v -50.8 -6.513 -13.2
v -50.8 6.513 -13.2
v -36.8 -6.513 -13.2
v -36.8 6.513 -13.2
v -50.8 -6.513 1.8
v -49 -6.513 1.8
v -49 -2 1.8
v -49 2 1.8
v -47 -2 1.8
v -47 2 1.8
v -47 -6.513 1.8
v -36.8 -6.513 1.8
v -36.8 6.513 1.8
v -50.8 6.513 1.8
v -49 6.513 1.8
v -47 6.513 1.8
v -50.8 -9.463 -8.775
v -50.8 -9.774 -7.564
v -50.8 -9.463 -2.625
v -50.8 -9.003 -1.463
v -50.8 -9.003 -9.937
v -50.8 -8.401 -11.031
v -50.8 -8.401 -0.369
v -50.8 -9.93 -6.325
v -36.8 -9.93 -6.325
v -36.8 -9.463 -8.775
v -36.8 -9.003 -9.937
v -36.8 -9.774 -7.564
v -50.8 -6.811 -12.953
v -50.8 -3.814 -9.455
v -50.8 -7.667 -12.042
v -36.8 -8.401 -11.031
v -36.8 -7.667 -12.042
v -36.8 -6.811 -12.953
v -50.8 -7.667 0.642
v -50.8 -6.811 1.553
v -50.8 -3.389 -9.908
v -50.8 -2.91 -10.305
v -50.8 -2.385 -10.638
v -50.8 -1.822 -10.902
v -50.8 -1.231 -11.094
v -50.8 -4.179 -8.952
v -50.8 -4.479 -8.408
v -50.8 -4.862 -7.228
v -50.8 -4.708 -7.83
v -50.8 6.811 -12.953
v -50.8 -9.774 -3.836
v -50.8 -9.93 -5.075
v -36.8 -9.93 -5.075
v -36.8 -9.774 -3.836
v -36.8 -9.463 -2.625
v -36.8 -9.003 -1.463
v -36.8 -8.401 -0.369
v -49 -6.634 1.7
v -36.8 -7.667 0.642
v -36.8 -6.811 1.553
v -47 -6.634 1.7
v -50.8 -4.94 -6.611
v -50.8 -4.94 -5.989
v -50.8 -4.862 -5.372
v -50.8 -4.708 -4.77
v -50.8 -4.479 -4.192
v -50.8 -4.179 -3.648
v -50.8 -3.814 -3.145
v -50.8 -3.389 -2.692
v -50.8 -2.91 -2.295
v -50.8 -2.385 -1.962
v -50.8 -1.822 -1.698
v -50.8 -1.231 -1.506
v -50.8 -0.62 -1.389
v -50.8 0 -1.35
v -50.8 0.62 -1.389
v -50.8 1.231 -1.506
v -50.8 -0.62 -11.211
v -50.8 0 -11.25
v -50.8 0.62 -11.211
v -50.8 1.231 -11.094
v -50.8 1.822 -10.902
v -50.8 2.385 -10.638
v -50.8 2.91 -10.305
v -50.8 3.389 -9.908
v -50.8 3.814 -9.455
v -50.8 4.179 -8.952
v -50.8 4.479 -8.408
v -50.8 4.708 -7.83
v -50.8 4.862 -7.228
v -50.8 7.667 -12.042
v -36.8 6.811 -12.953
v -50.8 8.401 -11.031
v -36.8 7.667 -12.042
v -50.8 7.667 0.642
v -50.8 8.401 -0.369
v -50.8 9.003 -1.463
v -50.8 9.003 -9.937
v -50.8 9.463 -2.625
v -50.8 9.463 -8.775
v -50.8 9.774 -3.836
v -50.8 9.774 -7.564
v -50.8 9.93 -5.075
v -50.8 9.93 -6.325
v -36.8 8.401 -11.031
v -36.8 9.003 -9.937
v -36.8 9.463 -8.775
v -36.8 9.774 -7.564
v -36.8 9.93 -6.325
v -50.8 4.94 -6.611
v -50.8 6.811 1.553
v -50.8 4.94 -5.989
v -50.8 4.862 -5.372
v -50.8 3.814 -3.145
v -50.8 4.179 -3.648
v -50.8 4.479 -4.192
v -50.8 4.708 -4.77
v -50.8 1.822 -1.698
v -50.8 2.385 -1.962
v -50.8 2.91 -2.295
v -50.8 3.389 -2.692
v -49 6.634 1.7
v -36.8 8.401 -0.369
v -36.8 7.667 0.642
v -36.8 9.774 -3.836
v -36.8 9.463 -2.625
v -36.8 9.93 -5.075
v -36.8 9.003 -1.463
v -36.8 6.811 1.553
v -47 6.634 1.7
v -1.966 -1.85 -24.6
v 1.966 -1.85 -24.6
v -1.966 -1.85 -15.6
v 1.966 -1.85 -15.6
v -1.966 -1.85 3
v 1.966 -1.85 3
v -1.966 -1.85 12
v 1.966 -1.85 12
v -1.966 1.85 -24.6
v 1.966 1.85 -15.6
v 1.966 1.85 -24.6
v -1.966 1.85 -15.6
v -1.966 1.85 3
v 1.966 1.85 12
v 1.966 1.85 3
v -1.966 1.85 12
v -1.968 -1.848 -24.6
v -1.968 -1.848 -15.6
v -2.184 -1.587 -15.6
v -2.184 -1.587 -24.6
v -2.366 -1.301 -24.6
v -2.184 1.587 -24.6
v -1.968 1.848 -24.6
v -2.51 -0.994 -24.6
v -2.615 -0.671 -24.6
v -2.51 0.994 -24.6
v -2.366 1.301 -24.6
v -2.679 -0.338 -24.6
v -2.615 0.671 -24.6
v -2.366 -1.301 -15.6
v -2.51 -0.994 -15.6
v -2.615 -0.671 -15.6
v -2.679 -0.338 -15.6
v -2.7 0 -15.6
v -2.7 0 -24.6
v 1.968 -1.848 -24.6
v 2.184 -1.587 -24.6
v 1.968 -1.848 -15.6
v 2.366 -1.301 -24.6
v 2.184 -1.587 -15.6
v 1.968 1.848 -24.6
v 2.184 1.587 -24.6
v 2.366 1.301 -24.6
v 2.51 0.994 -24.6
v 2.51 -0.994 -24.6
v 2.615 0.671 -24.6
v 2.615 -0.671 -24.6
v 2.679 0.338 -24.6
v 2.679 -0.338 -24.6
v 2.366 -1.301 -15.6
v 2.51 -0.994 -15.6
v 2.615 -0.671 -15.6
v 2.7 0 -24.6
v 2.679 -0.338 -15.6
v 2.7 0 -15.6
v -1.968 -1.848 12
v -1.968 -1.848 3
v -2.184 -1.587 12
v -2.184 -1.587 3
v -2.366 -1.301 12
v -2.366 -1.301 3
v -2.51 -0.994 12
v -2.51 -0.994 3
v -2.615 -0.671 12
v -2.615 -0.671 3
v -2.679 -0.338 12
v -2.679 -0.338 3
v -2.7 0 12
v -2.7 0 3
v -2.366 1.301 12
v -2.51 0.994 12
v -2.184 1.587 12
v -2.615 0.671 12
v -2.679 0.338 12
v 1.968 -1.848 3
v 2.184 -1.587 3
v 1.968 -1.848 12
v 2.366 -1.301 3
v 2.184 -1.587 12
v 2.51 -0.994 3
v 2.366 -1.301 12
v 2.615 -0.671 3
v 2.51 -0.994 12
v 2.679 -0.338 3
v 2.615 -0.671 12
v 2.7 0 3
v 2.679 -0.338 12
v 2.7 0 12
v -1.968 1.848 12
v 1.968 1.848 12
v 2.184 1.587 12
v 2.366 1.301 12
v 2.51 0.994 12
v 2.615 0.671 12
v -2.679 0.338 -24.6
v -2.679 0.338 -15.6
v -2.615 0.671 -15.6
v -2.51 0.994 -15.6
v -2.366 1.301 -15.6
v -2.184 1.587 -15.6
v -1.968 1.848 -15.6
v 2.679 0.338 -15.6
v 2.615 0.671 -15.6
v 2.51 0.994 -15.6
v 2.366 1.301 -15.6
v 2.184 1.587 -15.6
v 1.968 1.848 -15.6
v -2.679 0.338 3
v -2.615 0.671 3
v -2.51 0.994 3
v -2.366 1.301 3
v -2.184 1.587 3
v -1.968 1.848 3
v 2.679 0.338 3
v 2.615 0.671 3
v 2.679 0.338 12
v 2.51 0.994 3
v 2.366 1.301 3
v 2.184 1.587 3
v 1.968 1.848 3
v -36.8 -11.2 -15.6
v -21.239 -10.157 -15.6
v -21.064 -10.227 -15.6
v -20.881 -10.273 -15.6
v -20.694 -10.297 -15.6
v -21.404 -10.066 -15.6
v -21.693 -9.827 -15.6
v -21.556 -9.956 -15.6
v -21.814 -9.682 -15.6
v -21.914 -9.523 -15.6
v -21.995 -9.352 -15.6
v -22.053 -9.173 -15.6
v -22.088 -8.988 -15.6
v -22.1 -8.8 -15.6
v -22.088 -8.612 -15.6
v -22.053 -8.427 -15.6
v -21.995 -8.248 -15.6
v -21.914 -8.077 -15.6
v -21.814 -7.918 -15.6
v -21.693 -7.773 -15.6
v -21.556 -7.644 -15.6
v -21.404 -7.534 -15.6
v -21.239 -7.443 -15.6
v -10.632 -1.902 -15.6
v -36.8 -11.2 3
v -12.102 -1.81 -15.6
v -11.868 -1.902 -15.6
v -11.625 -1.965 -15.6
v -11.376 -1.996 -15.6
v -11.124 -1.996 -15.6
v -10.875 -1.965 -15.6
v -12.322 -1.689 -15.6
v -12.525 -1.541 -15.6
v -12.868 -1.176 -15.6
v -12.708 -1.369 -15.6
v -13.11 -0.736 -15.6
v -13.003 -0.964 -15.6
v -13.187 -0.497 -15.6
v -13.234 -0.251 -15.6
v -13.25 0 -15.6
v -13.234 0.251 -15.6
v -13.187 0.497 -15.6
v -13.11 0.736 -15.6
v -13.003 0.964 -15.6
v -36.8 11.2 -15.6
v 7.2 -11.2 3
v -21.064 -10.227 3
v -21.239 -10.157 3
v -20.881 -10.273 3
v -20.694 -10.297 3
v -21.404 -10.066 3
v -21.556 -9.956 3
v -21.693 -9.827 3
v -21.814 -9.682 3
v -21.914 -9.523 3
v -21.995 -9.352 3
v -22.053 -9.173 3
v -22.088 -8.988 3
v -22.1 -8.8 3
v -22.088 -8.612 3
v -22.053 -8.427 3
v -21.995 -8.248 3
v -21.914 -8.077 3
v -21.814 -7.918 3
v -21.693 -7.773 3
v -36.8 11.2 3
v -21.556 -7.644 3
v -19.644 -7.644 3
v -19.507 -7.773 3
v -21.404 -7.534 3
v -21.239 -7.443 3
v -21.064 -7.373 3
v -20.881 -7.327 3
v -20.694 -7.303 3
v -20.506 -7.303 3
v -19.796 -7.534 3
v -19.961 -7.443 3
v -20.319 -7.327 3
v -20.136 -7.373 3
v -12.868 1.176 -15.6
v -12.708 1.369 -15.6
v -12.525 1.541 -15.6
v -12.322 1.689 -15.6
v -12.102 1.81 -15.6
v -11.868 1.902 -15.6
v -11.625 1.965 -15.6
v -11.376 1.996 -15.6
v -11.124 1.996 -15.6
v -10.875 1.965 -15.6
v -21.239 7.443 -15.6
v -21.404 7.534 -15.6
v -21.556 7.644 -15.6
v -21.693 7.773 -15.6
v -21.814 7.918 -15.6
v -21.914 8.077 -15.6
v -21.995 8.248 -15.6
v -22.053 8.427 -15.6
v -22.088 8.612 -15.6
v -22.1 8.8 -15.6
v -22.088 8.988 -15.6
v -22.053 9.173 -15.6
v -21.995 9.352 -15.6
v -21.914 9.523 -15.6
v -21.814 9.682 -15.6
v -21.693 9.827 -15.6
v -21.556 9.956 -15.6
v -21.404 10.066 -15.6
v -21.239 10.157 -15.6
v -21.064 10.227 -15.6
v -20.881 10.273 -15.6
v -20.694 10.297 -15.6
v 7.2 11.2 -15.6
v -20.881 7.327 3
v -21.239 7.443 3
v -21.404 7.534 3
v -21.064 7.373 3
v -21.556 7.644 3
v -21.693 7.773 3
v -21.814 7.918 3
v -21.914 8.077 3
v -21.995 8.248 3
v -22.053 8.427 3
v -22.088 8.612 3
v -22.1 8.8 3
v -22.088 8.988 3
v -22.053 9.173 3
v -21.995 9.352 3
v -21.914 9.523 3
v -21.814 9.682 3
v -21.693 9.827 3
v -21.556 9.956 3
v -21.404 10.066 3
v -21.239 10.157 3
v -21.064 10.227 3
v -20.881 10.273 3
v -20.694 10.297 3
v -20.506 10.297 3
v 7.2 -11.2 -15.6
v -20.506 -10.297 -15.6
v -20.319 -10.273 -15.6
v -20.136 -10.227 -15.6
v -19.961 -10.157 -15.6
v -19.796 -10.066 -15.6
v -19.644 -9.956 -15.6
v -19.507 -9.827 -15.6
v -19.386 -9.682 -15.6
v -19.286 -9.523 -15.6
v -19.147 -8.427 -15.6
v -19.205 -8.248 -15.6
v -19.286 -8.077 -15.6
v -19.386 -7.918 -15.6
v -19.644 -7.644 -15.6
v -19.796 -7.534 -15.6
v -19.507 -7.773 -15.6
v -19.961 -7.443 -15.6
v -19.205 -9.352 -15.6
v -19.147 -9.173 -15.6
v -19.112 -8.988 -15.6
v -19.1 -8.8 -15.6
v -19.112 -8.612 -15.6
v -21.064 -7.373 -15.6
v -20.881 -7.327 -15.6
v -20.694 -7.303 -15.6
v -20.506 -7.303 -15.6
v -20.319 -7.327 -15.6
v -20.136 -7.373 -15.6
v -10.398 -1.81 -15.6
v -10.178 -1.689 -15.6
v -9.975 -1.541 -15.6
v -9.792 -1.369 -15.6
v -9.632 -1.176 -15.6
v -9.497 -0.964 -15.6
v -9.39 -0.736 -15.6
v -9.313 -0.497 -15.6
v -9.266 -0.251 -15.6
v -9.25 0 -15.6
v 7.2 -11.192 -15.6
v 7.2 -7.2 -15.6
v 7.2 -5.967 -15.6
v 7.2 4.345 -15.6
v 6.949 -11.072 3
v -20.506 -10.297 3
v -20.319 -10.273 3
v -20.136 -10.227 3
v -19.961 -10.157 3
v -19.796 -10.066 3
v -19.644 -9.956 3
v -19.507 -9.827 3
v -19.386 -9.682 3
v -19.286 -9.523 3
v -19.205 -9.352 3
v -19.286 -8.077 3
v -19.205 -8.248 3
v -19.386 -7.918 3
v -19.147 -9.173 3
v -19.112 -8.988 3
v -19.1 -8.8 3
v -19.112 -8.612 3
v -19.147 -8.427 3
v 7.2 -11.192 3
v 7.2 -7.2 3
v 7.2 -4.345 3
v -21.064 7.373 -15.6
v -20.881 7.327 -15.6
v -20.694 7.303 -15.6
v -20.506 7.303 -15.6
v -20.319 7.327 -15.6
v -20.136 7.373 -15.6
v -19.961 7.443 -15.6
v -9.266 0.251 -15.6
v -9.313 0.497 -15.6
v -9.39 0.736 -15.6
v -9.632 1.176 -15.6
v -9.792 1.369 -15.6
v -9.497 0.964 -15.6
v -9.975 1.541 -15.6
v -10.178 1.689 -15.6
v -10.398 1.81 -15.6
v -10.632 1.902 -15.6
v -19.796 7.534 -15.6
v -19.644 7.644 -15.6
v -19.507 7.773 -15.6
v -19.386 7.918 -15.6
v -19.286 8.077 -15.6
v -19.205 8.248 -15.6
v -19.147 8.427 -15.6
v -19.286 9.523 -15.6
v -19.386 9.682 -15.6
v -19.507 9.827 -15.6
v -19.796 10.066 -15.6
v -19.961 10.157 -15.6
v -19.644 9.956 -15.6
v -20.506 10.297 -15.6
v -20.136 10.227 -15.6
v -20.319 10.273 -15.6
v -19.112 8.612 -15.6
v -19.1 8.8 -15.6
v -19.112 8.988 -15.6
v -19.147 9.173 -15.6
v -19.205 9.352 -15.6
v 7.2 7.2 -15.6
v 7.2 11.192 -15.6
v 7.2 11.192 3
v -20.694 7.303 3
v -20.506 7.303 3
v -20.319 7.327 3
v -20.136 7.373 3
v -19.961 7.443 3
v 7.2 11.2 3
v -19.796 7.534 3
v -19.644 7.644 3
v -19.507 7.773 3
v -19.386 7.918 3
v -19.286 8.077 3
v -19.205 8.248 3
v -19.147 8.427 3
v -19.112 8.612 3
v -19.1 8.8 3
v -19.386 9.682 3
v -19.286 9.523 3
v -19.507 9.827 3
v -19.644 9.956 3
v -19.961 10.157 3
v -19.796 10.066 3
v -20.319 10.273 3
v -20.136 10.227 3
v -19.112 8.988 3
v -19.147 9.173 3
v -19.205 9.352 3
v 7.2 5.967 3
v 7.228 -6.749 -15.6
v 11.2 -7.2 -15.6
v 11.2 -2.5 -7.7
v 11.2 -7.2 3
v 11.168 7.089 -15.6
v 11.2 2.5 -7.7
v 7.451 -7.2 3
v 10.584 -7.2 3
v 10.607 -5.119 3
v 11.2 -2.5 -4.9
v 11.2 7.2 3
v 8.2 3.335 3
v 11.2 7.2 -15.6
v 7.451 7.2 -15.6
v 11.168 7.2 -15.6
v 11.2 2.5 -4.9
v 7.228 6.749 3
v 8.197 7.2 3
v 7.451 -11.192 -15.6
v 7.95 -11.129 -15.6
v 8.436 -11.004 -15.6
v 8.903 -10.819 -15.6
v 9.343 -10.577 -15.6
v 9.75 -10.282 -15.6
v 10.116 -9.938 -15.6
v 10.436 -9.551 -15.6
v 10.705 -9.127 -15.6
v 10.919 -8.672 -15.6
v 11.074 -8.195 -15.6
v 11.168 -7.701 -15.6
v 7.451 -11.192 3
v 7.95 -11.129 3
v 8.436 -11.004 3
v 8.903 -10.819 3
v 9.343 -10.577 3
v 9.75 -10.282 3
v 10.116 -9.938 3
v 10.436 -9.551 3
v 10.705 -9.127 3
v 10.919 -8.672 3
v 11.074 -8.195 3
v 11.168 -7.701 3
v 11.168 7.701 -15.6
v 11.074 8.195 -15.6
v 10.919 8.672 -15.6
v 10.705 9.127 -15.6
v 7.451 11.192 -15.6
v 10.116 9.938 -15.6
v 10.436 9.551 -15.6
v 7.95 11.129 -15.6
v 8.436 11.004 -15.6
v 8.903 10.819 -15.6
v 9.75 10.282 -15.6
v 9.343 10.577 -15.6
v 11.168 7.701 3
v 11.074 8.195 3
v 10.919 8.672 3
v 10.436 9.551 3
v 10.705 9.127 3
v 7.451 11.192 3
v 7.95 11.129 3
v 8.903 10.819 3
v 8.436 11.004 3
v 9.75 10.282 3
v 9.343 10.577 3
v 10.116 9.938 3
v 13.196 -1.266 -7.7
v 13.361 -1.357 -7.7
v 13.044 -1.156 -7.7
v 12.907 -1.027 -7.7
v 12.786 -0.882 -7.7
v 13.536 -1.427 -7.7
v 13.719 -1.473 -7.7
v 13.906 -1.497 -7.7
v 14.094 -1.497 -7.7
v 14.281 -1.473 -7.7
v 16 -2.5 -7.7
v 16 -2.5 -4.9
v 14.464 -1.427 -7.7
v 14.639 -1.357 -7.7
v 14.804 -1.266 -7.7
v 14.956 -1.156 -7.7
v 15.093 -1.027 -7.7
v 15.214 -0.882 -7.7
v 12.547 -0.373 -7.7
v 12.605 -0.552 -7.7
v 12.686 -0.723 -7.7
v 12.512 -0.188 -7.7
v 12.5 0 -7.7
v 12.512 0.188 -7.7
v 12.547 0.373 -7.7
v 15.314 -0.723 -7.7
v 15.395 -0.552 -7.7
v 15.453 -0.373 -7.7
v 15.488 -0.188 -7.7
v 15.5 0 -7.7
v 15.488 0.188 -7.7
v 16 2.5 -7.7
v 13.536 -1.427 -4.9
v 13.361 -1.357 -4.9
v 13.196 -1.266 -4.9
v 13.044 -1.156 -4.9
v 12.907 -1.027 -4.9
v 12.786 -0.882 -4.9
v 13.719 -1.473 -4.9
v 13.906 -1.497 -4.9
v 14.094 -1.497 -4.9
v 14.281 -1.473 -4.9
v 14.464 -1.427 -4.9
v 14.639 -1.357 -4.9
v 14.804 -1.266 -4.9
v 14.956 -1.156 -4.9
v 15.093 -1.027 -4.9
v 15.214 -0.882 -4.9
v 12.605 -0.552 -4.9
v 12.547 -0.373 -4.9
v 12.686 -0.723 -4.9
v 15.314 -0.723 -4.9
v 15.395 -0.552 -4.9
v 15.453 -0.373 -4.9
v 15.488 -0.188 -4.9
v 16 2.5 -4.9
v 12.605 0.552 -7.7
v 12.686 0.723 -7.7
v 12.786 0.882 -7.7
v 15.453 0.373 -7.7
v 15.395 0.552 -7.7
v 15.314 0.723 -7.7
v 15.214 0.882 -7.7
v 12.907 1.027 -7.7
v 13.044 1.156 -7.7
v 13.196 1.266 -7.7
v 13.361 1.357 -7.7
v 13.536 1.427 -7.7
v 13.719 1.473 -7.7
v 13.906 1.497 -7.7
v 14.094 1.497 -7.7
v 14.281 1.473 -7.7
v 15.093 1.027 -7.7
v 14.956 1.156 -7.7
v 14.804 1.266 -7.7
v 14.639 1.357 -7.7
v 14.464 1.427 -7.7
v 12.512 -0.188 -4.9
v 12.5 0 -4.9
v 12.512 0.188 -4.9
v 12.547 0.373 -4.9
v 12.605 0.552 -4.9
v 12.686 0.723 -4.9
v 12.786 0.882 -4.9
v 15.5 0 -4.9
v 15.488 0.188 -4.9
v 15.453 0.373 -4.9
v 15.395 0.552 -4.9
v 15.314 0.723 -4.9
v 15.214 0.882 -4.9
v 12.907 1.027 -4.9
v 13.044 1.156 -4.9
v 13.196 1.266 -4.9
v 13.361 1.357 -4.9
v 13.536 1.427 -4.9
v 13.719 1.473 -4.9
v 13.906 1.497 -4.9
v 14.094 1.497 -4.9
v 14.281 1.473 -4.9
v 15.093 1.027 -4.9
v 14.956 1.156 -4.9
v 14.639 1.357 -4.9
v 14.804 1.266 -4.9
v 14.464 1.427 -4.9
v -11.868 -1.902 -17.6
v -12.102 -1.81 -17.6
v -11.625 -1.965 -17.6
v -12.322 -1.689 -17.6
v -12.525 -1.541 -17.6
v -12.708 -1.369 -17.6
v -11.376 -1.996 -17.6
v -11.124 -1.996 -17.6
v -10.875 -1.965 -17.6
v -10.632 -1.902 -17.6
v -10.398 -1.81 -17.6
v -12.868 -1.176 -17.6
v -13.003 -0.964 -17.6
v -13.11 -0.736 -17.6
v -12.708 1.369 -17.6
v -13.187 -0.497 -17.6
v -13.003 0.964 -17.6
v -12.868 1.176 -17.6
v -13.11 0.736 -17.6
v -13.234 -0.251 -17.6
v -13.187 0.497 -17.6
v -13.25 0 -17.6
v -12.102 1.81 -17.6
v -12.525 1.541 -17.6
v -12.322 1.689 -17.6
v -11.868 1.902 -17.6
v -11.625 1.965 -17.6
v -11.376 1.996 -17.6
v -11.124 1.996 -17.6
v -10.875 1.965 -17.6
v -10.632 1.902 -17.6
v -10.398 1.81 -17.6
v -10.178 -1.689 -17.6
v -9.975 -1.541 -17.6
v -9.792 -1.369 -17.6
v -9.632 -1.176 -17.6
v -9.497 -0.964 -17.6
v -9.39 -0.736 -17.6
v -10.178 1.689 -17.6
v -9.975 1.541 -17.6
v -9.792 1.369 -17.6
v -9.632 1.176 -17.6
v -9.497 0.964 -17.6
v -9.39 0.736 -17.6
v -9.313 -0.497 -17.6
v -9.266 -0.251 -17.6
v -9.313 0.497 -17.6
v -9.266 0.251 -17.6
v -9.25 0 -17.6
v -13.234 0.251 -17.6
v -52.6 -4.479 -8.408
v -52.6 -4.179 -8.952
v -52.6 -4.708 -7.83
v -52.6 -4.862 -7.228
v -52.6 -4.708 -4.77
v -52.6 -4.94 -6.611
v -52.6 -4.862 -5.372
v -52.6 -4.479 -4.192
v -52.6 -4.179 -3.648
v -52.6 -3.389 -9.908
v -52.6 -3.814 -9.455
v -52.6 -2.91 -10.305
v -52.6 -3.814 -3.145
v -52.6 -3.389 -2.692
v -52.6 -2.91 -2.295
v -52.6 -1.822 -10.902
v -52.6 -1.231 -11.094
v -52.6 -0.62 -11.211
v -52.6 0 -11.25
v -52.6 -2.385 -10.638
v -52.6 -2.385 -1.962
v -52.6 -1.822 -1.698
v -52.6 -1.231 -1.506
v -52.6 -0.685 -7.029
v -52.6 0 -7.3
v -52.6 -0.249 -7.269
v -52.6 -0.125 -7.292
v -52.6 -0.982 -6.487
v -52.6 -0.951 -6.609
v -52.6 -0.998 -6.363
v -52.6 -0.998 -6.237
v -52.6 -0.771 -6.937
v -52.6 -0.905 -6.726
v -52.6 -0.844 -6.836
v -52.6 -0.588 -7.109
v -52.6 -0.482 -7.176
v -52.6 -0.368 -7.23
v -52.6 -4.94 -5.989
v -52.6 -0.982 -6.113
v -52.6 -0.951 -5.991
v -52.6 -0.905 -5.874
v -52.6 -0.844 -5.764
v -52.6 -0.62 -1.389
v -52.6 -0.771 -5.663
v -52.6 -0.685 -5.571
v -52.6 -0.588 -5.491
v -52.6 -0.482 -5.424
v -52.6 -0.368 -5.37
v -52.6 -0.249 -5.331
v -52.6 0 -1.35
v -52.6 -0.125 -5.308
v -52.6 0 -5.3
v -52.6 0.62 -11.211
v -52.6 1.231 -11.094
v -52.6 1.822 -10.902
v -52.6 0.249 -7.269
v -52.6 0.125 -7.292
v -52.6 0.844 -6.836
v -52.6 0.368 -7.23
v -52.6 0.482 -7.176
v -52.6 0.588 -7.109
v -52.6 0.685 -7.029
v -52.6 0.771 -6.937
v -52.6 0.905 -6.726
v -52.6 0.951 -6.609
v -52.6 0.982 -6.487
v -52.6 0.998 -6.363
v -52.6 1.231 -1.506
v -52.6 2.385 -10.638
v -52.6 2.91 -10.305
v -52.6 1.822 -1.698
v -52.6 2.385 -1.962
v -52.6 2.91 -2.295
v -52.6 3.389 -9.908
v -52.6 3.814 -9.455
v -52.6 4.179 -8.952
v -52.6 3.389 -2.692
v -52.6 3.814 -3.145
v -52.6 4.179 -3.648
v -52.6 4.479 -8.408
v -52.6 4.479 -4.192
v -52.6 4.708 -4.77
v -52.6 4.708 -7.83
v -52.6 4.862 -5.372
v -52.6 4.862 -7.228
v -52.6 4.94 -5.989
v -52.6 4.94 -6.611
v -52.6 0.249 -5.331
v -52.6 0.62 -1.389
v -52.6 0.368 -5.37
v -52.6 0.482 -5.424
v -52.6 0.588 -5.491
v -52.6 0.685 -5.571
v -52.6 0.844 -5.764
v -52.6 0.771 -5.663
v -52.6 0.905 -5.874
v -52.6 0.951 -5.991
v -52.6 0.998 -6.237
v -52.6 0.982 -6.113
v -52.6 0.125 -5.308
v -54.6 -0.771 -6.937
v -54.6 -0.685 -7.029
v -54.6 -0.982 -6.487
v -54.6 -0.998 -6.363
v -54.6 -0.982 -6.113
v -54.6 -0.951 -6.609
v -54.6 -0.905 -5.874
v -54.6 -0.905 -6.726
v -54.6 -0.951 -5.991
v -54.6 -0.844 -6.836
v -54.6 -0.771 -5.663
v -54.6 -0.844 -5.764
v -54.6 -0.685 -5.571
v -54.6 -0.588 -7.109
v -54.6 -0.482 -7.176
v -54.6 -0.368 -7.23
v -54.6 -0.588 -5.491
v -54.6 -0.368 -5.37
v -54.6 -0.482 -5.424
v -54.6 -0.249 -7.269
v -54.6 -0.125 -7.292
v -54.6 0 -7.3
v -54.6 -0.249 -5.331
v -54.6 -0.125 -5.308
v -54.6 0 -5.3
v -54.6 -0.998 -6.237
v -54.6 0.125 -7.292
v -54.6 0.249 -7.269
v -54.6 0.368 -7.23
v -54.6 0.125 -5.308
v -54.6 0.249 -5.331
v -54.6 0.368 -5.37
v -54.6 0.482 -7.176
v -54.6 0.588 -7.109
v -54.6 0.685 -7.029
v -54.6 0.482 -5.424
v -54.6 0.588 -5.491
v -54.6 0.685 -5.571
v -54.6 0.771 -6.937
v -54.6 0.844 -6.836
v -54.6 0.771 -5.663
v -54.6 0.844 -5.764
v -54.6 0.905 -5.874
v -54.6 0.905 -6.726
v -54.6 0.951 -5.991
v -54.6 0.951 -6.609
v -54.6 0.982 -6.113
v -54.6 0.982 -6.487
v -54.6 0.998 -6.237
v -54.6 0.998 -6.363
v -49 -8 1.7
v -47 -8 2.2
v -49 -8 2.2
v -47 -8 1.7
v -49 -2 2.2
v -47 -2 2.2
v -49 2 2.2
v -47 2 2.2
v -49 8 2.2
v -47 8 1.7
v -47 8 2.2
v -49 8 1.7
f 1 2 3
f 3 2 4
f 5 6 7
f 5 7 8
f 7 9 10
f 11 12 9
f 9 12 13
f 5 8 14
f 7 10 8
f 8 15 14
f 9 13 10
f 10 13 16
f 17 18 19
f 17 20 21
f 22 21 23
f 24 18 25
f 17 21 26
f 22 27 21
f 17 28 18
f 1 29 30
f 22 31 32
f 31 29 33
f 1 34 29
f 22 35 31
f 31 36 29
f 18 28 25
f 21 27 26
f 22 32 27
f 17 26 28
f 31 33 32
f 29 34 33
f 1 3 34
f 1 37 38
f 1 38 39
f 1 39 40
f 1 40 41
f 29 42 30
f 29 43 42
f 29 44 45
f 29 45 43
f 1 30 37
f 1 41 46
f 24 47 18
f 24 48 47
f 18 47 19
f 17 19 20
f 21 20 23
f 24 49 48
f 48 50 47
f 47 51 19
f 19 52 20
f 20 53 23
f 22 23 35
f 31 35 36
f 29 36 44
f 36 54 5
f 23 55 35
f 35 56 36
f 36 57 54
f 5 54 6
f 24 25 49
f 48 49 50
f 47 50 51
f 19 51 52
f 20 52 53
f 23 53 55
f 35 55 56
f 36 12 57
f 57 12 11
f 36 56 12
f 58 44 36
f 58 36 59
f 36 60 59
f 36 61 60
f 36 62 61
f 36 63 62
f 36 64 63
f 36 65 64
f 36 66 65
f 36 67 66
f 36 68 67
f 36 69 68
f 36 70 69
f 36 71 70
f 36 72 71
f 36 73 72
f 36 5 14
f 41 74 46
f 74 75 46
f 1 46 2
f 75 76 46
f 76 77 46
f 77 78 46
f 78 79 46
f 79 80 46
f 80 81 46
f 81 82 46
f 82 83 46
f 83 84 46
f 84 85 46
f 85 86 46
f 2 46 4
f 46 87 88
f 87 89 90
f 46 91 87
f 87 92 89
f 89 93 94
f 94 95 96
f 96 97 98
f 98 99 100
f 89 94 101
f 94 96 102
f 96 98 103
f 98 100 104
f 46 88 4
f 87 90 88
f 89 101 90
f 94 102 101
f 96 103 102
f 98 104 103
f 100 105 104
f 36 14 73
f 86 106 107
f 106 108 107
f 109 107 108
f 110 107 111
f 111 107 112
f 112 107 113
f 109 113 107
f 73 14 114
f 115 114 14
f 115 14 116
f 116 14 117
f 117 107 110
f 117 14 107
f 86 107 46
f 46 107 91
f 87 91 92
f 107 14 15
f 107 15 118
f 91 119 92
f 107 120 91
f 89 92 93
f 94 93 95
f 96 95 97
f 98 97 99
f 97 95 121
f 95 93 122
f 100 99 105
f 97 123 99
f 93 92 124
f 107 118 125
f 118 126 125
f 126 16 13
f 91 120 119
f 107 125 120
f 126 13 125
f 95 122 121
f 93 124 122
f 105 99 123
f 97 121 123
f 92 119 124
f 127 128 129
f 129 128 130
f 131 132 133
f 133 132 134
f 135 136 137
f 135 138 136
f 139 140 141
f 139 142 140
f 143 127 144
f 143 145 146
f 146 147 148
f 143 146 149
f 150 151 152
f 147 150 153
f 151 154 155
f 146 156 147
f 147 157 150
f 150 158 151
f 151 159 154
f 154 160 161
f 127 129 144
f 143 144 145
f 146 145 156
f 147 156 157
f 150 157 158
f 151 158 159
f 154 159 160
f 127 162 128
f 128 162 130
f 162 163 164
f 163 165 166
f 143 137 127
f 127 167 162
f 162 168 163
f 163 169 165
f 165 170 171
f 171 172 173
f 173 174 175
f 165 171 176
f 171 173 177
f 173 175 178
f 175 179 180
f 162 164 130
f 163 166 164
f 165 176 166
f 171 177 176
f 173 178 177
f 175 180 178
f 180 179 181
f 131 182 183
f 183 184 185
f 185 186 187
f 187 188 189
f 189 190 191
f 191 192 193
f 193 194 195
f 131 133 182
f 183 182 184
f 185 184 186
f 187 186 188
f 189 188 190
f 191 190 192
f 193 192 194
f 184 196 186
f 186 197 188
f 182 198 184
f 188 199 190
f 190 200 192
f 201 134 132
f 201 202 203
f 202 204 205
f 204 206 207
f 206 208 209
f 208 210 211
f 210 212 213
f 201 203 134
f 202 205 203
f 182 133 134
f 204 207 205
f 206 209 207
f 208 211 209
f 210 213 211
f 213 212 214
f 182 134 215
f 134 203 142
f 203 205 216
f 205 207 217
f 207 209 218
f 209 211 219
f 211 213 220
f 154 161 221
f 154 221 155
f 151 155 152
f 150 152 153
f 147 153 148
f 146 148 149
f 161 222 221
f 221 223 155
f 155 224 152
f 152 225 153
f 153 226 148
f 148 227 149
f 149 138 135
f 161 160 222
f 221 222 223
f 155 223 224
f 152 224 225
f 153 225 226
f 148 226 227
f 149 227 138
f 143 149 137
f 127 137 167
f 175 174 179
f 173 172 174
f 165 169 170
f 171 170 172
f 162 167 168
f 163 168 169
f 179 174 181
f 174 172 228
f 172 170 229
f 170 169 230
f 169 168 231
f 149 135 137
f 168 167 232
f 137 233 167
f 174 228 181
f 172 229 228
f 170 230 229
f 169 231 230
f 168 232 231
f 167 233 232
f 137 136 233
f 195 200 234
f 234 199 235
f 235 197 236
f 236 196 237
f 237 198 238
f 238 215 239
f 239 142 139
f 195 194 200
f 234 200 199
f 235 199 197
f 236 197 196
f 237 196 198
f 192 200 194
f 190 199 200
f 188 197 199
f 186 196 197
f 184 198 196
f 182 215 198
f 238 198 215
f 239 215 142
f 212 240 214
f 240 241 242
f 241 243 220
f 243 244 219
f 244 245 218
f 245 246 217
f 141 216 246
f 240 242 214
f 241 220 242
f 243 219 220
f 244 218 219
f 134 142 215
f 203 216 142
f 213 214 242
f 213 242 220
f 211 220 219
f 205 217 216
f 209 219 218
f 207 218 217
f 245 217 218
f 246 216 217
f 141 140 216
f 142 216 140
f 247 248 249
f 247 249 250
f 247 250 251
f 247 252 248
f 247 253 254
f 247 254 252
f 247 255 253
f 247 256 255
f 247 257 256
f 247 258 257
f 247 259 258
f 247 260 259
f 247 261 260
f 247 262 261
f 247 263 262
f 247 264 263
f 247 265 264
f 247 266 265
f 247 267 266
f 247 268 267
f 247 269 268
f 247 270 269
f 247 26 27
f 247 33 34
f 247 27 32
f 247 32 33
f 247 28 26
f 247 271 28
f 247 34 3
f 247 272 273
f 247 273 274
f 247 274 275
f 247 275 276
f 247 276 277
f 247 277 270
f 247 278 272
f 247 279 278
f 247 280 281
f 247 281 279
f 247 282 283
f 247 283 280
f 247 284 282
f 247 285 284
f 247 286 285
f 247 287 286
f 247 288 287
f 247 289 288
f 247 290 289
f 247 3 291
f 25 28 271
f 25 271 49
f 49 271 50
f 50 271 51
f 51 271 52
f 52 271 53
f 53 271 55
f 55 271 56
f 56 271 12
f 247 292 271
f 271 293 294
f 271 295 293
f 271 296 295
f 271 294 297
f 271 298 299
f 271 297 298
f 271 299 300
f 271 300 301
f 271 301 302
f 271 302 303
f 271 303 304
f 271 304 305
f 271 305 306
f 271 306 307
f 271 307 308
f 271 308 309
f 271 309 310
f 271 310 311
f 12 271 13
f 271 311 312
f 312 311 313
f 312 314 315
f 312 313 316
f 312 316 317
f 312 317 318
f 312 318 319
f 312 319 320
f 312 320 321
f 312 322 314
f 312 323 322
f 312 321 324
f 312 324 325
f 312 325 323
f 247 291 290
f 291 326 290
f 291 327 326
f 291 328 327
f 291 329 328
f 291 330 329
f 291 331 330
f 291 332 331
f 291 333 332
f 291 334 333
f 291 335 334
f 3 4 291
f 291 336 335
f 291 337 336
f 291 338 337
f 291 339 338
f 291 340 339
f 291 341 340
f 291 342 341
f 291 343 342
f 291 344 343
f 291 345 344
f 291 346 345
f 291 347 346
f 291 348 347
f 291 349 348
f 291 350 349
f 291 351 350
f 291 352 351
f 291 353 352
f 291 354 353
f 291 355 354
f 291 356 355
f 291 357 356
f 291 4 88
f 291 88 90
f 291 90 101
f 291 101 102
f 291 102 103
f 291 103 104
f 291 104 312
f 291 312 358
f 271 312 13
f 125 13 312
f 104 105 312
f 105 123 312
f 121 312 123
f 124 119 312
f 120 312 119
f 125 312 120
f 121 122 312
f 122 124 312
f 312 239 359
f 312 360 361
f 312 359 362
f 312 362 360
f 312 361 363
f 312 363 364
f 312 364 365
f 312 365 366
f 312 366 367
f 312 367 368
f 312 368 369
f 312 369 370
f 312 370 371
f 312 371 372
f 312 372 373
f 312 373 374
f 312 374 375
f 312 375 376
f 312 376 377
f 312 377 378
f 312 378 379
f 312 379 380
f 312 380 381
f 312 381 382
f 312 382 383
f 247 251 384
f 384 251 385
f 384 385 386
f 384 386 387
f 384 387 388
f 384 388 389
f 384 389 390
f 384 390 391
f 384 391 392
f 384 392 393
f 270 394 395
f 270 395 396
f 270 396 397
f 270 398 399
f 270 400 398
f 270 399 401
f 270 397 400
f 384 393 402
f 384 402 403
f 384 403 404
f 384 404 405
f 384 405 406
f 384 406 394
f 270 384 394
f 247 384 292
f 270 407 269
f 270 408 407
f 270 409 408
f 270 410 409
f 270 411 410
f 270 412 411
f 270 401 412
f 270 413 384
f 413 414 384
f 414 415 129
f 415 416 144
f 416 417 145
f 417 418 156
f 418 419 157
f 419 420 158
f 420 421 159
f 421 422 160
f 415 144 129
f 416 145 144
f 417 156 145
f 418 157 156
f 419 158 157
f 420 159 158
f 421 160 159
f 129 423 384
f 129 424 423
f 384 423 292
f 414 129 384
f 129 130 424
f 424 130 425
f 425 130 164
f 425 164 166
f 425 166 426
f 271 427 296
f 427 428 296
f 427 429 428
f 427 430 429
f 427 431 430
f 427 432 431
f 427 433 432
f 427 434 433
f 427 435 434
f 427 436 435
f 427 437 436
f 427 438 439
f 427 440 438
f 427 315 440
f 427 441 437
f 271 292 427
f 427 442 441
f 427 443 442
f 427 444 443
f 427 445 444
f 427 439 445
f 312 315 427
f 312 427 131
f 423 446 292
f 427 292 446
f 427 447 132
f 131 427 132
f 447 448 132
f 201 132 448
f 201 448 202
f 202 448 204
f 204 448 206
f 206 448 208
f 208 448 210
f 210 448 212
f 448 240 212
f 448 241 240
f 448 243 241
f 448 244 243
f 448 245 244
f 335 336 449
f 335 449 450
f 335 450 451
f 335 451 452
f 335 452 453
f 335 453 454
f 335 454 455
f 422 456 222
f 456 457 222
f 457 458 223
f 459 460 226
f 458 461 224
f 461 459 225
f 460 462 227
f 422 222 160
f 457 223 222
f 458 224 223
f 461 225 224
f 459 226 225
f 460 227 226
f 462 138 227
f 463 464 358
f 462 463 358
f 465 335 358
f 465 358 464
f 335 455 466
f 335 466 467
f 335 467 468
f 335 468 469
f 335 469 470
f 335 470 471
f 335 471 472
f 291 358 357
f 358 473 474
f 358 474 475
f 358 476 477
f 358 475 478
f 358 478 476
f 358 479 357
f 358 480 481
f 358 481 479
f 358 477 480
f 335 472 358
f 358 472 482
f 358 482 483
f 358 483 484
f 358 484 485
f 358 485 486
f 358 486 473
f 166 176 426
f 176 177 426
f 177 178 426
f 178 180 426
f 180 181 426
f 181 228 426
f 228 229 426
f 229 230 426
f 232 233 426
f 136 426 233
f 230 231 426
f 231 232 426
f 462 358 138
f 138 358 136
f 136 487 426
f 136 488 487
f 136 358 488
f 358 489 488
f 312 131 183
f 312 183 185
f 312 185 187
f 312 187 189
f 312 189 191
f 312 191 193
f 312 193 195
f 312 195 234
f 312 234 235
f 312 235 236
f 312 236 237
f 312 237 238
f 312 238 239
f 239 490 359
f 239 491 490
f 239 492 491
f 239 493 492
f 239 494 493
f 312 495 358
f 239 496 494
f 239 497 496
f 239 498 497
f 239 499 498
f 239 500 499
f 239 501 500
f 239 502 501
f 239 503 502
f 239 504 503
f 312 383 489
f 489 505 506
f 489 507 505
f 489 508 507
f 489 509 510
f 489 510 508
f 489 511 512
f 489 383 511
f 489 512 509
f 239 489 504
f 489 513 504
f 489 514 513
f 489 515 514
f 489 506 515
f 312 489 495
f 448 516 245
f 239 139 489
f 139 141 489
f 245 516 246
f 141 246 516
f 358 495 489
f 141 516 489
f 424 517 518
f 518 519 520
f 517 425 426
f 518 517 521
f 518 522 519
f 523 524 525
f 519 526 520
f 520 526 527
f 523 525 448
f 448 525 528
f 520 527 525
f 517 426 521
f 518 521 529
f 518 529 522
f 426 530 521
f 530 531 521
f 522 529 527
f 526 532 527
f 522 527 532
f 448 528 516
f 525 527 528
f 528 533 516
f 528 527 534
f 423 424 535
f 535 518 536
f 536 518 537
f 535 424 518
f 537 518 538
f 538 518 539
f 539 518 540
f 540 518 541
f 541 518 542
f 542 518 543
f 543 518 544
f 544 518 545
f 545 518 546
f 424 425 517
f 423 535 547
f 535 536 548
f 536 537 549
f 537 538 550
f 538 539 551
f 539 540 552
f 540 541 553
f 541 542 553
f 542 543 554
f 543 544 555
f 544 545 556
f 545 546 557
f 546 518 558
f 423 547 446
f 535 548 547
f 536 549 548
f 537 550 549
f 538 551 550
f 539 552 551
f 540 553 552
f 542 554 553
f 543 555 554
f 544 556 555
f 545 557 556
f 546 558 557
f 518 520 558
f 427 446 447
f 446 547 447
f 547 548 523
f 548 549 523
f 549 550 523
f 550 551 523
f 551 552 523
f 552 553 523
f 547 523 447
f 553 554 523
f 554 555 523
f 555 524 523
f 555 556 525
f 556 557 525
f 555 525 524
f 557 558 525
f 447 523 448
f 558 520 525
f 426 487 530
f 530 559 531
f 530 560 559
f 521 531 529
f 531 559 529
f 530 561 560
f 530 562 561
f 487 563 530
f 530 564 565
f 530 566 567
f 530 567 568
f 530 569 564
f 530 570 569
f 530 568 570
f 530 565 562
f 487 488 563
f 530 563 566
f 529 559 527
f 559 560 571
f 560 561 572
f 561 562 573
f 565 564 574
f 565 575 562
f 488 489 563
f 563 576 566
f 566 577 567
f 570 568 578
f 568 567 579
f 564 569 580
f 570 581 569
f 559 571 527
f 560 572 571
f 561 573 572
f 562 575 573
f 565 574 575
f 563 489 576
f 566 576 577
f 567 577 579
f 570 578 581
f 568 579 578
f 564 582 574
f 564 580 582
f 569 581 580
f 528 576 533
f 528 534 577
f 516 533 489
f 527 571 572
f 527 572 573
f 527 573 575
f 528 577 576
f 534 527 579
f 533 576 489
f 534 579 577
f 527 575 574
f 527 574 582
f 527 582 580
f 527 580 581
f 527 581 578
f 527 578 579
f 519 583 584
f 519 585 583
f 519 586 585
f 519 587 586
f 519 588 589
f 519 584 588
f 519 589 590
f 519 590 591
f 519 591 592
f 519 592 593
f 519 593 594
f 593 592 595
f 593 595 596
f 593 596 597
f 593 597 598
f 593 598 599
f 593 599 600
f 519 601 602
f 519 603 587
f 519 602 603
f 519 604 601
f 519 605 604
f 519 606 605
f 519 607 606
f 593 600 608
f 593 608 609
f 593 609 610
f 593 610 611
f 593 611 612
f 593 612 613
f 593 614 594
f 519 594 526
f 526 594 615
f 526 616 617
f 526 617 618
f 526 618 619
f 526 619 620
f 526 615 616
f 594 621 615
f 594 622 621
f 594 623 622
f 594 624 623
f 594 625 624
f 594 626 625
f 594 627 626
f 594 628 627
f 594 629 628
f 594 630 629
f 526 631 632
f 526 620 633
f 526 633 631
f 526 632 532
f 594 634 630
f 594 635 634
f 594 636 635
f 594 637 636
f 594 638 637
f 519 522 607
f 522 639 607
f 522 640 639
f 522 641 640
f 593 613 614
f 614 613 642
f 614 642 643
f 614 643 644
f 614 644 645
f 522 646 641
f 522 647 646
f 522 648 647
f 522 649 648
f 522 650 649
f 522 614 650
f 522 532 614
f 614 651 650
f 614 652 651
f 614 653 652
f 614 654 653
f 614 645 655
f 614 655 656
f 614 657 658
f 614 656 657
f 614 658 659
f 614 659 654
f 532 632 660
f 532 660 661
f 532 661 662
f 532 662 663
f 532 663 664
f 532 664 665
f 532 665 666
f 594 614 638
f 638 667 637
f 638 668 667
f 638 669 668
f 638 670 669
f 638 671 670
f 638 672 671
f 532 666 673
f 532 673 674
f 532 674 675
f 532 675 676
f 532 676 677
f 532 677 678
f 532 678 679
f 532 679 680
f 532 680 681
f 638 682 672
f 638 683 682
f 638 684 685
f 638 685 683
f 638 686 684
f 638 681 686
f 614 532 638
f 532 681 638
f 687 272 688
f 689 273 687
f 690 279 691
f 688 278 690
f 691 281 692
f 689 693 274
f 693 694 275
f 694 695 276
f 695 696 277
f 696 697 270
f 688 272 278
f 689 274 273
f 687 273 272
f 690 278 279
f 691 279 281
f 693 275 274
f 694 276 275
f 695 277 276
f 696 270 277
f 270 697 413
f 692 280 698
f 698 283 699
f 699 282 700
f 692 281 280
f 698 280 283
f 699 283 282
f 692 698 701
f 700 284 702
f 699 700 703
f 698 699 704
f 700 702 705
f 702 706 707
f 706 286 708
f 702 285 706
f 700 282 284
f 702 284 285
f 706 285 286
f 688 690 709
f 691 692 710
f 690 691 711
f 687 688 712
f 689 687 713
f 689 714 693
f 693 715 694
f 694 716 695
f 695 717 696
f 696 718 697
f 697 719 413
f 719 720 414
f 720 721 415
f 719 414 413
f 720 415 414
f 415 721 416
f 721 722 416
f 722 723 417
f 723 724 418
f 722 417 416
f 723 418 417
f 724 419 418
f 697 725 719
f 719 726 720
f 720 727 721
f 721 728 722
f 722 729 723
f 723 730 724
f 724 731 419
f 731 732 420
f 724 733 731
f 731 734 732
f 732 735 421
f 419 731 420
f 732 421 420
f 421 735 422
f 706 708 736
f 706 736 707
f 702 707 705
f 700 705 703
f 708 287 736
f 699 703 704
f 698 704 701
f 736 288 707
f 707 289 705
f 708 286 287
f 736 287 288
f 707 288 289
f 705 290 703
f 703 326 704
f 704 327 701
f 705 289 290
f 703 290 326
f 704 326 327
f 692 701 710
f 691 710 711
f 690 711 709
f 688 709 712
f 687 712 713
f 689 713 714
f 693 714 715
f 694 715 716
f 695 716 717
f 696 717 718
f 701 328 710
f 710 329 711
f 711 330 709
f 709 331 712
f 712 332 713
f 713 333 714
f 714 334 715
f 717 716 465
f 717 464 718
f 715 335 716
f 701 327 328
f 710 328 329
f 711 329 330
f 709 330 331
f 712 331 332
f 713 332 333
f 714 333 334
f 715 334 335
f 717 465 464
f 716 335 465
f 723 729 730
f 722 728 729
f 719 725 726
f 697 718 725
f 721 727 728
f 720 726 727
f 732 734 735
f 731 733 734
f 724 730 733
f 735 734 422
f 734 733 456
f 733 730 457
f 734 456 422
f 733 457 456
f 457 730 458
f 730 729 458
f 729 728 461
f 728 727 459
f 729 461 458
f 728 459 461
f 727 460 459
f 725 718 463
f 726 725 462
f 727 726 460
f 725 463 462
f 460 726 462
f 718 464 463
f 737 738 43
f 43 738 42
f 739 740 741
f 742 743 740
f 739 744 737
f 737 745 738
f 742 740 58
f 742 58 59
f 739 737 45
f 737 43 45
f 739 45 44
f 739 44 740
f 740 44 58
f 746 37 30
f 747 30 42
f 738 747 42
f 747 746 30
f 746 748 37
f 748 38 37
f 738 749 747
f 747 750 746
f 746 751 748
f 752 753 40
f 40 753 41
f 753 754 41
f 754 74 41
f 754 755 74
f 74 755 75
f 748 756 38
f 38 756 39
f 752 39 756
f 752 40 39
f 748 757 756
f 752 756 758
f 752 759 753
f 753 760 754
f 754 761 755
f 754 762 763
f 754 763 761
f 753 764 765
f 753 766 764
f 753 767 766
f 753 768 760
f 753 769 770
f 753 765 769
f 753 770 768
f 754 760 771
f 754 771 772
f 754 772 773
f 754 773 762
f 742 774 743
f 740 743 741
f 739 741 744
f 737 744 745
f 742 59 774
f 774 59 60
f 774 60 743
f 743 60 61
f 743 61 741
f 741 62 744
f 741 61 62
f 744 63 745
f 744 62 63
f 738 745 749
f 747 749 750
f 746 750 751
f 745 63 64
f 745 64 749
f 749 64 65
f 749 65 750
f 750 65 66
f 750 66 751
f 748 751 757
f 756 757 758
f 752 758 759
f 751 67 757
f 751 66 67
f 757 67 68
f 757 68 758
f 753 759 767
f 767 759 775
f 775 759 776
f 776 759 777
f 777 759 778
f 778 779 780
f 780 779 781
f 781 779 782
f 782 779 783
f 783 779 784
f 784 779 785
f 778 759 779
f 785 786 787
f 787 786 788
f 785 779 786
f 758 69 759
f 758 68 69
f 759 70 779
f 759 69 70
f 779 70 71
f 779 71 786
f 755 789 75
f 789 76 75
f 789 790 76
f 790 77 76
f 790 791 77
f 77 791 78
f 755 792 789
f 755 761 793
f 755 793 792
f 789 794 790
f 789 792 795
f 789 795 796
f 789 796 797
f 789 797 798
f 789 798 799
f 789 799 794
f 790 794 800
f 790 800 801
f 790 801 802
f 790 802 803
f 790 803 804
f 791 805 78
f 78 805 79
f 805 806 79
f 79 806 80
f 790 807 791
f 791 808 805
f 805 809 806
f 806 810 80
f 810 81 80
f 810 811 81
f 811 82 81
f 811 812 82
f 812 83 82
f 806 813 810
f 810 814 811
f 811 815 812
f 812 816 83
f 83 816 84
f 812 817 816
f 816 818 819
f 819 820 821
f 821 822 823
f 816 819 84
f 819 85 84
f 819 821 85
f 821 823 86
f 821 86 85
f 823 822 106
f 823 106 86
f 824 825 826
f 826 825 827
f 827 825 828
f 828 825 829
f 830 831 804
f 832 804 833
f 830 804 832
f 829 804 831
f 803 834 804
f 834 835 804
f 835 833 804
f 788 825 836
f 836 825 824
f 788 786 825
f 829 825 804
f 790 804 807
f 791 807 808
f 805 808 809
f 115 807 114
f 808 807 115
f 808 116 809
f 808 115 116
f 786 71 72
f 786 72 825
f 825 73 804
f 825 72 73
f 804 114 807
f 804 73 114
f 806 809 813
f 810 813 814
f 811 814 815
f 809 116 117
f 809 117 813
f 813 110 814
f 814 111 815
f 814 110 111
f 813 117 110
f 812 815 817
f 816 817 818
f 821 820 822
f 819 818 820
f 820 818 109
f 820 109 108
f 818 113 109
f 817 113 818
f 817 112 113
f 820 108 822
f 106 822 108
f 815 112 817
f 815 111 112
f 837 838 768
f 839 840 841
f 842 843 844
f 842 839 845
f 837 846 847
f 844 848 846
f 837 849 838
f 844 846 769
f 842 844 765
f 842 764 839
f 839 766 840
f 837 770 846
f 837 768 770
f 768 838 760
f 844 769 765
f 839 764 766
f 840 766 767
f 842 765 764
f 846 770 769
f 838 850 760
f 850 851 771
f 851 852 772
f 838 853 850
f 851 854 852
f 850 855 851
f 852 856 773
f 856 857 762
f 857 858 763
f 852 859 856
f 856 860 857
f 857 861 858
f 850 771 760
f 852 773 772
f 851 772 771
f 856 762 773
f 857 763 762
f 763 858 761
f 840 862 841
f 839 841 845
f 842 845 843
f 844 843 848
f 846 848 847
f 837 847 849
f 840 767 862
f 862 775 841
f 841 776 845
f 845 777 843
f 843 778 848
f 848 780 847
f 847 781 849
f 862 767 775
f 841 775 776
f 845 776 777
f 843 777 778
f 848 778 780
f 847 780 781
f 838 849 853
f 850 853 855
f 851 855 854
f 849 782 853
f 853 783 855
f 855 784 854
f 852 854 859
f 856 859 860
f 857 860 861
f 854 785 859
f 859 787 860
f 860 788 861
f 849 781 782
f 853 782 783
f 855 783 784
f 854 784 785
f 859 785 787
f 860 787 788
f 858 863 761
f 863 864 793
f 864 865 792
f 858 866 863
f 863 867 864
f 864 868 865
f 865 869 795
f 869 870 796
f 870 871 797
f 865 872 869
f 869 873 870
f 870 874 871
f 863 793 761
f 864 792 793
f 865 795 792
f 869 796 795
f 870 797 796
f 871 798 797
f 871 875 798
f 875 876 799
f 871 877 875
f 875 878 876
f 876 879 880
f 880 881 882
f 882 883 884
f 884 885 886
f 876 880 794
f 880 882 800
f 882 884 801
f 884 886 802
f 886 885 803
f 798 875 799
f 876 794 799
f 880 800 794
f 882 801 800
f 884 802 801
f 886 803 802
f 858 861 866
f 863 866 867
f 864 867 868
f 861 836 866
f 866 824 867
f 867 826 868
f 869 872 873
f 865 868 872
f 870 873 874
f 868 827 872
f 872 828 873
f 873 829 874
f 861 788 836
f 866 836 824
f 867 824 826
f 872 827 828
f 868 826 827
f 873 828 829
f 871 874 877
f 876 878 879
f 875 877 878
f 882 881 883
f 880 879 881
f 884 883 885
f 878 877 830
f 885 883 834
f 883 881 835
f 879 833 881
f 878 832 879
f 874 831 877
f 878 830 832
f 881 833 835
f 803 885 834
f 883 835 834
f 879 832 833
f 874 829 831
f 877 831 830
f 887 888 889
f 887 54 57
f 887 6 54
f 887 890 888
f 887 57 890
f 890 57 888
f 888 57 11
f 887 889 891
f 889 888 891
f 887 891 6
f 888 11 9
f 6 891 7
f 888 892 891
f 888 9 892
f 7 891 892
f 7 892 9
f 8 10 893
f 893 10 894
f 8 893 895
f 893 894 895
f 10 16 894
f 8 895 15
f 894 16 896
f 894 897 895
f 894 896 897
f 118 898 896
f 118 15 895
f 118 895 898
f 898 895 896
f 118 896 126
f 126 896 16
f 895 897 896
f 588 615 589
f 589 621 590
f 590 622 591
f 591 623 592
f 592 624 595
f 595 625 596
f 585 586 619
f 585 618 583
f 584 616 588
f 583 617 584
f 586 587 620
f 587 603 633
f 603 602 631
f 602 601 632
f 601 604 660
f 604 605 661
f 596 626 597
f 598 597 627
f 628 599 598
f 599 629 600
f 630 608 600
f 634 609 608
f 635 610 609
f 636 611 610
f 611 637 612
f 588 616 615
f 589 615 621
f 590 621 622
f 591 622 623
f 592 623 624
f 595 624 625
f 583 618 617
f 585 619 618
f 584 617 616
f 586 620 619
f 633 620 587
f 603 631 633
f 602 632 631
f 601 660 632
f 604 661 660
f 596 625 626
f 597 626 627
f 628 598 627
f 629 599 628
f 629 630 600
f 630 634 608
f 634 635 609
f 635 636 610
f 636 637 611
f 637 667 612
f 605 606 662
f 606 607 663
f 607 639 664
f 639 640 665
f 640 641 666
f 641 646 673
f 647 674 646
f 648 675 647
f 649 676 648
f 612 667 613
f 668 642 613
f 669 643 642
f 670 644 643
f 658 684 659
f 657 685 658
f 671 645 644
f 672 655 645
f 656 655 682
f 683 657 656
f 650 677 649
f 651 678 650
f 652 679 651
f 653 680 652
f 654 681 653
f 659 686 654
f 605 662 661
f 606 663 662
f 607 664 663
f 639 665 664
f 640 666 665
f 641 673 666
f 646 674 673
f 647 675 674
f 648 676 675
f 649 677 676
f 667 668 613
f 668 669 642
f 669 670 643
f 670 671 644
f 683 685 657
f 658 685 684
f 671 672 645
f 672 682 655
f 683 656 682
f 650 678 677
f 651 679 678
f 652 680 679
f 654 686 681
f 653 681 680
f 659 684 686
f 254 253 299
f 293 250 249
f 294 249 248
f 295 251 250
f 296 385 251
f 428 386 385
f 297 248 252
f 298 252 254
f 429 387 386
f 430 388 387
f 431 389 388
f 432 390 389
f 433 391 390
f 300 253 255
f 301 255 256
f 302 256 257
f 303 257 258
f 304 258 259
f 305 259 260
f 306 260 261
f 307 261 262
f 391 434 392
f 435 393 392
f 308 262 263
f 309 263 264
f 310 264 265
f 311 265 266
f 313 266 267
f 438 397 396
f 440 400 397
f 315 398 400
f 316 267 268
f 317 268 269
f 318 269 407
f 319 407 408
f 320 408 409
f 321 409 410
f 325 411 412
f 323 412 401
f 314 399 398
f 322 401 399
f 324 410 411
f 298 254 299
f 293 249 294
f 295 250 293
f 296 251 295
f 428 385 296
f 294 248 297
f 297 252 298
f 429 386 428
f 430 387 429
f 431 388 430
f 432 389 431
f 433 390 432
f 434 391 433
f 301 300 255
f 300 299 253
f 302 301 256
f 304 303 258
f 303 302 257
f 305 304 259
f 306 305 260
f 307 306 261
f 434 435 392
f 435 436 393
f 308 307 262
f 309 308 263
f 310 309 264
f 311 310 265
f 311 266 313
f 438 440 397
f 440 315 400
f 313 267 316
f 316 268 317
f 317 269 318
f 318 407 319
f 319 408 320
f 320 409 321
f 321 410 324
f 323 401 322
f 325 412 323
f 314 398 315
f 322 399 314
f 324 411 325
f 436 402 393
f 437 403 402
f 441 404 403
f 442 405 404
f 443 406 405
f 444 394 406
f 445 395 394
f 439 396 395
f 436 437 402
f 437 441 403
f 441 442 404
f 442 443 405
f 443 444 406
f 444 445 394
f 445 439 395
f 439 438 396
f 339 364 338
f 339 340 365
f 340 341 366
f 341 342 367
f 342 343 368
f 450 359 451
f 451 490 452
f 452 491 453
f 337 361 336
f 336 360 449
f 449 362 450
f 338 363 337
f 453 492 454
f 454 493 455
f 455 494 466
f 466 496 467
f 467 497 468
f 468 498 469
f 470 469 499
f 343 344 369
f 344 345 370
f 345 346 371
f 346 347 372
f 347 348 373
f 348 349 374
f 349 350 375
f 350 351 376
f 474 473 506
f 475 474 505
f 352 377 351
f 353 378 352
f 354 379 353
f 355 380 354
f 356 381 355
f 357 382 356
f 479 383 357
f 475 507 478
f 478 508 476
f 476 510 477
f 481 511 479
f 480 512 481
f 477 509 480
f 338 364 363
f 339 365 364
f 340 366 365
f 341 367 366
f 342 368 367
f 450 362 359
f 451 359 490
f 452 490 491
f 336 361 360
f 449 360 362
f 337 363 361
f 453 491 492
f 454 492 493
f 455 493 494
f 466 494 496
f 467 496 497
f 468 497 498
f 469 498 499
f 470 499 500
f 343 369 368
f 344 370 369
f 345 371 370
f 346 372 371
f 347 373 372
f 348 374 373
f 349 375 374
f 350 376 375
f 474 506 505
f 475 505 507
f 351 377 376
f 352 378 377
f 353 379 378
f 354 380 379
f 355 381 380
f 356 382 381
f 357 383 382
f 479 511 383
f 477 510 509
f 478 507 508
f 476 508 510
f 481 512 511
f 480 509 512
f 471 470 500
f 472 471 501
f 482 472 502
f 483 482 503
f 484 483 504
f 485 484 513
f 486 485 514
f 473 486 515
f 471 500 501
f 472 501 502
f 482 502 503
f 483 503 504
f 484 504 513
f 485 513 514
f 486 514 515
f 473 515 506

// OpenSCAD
$fn = 50;

difference() {
	union() {
		translate(v = [0, 0, 0]) {
			rotate(a = [0, 0, 0]) {
				difference() {
					union() {
						translate(v = [-50.8, 0, -5.700000000000001]) {
							rotate(a = [0, 90, 0]) {
								cylinder(h = 14.2, r = 9.95);
							}
						}
					}
					union() {
						translate(v = [-52.0, -12.0, -23.2]) {
							cube(size = [16, 24, 10.0]);
						}
						translate(v = [-52.0, -12.0, 1.799999999999999]) {
							cube(size = [16, 24, 10.0]);
						}
					}
				}
			}
		}
		translate(v = [0, 0, 0]) {
			rotate(a = [0, 0, 0]) {
				difference() {
					union() {
						translate(v = [0, 0, -24.600000000000005]) {
							cylinder(h = 36.6, r = 2.7);
						}
					}
					union() {
						translate(v = [-20.0, -21.85, -25.6]) {
							cube(size = [40, 20, 38.6]);
						}
						translate(v = [-20.0, 1.8499999999999996, -25.6]) {
							cube(size = [40, 20, 38.6]);
						}
					}
				}
			}
		}
		translate(v = [-36.8, -11.2, -15.600000000000001]) {
			cube(size = [44.0, 22.4, 18.6]);
		}
		translate(v = [7.099999999999999, -7.199999999999999, -15.600000000000001]) {
			cube(size = [4.1, 14.399999999999999, 18.6]);
		}
		translate(v = [7.199999999999999, -7.199999999999999, -15.600000000000001]) {
			cylinder(h = 18.6, r = 4);
		}
		translate(v = [7.199999999999999, 7.199999999999999, -15.600000000000001]) {
			cylinder(h = 18.6, r = 4);
		}
		translate(v = [11.100000000000001, -2.5, -7.700000000000001]) {
			cube(size = [4.9, 5, 2.8000000000000007]);
		}
		translate(v = [-11.25, 0, -17.6]) {
			cylinder(h = 2.1, r = 2);
		}
		translate(v = [-52.6, 0, -6.300000000000001]) {
			rotate(a = [0, 90, 0]) {
				cylinder(h = 2.1, r = 4.95);
			}
		}
		translate(v = [-54.6, 0, -6.300000000000001]) {
			rotate(a = [0, 90, 0]) {
				cylinder(h = 2.1, r = 1);
			}
		}
		translate(v = [-49.0, -8.0, 1.6999999999999993]) {
			cube(size = [2, 6, 0.5]);
		}
		translate(v = [-49.0, 2.0, 1.6999999999999993]) {
			cube(size = [2, 6, 0.5]);
		}
	}
	union() {
		translate(v = [14, 0, -8.3]) {
			cylinder(h = 4, r = 1.5);
		}
		translate(v = [-20.6, -8.8, -16.6]) {
			cylinder(h = 20.6, r = 1.5);
		}
		translate(v = [-20.6, 8.8, -16.6]) {
			cylinder(h = 20.6, r = 1.5);
		}
	}
}
